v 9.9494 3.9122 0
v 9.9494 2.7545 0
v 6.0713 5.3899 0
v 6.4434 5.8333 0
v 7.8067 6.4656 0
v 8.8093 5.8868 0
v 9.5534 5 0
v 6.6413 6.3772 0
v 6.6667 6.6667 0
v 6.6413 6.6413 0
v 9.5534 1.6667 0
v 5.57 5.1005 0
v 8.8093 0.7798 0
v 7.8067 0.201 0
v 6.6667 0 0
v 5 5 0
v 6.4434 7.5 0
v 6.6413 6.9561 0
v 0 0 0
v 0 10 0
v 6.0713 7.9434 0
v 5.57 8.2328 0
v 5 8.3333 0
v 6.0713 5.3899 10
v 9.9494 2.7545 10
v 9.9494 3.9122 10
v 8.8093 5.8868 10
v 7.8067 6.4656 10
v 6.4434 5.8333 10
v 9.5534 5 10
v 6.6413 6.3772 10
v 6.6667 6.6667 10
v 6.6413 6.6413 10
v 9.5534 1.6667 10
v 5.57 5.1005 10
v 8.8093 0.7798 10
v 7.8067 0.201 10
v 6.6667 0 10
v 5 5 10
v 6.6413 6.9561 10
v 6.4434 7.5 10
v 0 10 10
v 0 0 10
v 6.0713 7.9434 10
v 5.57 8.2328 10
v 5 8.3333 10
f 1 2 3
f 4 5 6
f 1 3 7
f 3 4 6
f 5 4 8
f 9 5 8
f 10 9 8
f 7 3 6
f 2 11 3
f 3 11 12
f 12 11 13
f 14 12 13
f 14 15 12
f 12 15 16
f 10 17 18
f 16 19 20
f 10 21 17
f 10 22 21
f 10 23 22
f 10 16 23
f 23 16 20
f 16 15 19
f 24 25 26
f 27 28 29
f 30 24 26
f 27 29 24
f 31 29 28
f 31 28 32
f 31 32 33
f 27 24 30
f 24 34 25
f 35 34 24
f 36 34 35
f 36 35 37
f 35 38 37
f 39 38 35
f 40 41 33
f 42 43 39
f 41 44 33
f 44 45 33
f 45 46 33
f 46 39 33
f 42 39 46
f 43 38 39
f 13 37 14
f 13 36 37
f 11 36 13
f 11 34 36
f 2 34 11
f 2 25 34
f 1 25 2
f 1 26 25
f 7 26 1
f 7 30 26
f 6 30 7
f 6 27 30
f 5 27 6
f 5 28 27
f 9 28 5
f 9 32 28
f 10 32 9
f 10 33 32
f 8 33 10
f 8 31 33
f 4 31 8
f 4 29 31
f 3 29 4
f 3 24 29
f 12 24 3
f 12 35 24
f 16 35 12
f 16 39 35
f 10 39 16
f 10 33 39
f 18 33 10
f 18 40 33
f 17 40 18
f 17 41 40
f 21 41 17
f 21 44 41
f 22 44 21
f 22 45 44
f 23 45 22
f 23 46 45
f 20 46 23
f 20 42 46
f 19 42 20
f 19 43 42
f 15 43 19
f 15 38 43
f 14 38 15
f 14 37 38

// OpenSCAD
// Generated by SolidPython 1.1.3 on 2025-02-16 23:01:38


linear_extrude(height = 10) {
	polygon(points = [[0, 0], [6.6666666667, 0], [6.6666666667, -0.0000000000], [7.8067338111, 0.2010245974], [8.8092920323, 0.7798518563], [9.5534180126, 1.6666666667], [9.9493591767, 2.7545060744], [9.9493591767, 3.9121605922], [9.5534180126, 5.0000000000], [8.8092920323, 5.8868148104], [7.8067338111, 6.4656420693], [6.6666666667, 6.6666666667], [5.0000000000, 5.0000000000], [5.5700335722, 5.1005122987], [6.0713126828, 5.3899259281], [6.4433756730, 5.8333333333], [6.6413462550, 6.3772530372], [6.6413462550, 6.9560802961], [6.4433756730, 7.5000000000], [6.0713126828, 7.9434074052], [5.5700335722, 8.2328210346], [5.0000000000, 8.3333333333], [0, 10]]);
}
/***********************************************
*********      SolidPython code:      **********
************************************************
 
import math
from solid import *
from solid.utils import *
import subprocess

def arc_points(radius, start_angle, end_angle, num_points=50, center=[0,0]):
    angles = [start_angle + i * (end_angle - start_angle) / (num_points - 1)
              for i in range(num_points)]
    points = [
        [center[0] + radius * math.cos(math.radians(angle)),
         center[1] + radius * math.sin(math.radians(angle))]
        for angle in angles
    ]
    return points

def letter_A(h):
    shape_points = [(0,0), (h/2, h), (h, 0), (5/6*h, 0), (2/3*h, 1/3*h), (1/3*h, 1/3*h), (h/6, 0)]
    shape = polygon(shape_points)
    solid_A = linear_extrude(height=h)(shape)
    
    # hole_points = [(h/2, 2/3*h), (5/12*h, h/2), (7/12*h, h/2)]
    # hole = polygon(hole_points)
    # solid_hole = linear_extrude(height=h)(hole)
    hole = circle(r=h/6)
    positioned_hole = translate([h/2, 7/12*h])(hole)
    solid_hole = linear_extrude(height=h)(positioned_hole)
    
    solid_with_hole = difference()(solid_A, solid_hole)
    return solid_with_hole

def letter_B(h):
    large_arc = arc_points(h/3, -90, 90, num_points = 10, center=[2/3*h, 1/3*h])
    # large_arc_transposed = translate([2/3*h, 1/3*h])(large_arc)

    small_arc = arc_points(h/6, -90, 90, num_points= 10, center=[h/2, 2/3*h])
    # small_arc_transposed = translate([h/2, 2/3*h])(small_arc)

    outer_points = [(0,0), (2/3*h, 0)]
    outer_points.extend(large_arc)
    outer_points.extend(small_arc)
    outer_points.extend([(0,h)])

    outer_shape = polygon(outer_points)
    outer_solid = linear_extrude(height=h)(outer_shape)
    return outer_solid


def letter_3d(letter, size, font):
    letter_2d = text(text=letter, size=size, font=font)

    letter_3d = linear_extrude(height=size)(letter_2d)

    return letter_3d

def intersection_3d(letter1, letter2, size, font):
    letter1_3d = letter_3d(letter1, size, font)
    letter2_3d = letter_3d(letter2, size, font)

    letter2_3d = rotate(a=90, v=[1,0,0])(letter2_3d)

    intersect = intersection()(letter1_3d, letter2_3d)

    return intersect



if __name__ == "__main__":
    # shapeA = letter_3d("A", 10, "Ariel")
    # scad_render_to_file(shapeA, 'A.scad')
    # shapeB = letter_3d("B", 10, "Ariel")
    # shapeB = rotate(a=90, v=[1,0,0])(shapeB)
    # final = intersection()(shapeA, shapeB)
    # scad_render_to_file(final, "final.scad")
    # # subprocess.run(["C:\\Program Files\\OpenSCAD\\openscad.exe", "-o", "A.stl", "A.scad"])
    # # subprocess.run(["C:\\Program Files\\OpenSCAD\\openscad.exe", "-o", "B.stl", "B.scad"])
    # subprocess.run(["C:\\Program Files\\OpenSCAD\\openscad.exe", "-o", "final.stl", "final.scad"])

    # a = letter_A(10)
    # scad_render_to_file(a, "customA.scad")
    # subprocess.run(["C:\\Program Files\\OpenSCAD\\openscad.exe", "-o", "customA.stl", "customA.scad"])

    b = letter_B(10)
    scad_render_to_file(b, "customB.scad")
    subprocess.run(["C:\\Program Files\\OpenSCAD\\openscad.exe", "-o", "customB.stl", "customB.scad"])

 
 
************************************************/
